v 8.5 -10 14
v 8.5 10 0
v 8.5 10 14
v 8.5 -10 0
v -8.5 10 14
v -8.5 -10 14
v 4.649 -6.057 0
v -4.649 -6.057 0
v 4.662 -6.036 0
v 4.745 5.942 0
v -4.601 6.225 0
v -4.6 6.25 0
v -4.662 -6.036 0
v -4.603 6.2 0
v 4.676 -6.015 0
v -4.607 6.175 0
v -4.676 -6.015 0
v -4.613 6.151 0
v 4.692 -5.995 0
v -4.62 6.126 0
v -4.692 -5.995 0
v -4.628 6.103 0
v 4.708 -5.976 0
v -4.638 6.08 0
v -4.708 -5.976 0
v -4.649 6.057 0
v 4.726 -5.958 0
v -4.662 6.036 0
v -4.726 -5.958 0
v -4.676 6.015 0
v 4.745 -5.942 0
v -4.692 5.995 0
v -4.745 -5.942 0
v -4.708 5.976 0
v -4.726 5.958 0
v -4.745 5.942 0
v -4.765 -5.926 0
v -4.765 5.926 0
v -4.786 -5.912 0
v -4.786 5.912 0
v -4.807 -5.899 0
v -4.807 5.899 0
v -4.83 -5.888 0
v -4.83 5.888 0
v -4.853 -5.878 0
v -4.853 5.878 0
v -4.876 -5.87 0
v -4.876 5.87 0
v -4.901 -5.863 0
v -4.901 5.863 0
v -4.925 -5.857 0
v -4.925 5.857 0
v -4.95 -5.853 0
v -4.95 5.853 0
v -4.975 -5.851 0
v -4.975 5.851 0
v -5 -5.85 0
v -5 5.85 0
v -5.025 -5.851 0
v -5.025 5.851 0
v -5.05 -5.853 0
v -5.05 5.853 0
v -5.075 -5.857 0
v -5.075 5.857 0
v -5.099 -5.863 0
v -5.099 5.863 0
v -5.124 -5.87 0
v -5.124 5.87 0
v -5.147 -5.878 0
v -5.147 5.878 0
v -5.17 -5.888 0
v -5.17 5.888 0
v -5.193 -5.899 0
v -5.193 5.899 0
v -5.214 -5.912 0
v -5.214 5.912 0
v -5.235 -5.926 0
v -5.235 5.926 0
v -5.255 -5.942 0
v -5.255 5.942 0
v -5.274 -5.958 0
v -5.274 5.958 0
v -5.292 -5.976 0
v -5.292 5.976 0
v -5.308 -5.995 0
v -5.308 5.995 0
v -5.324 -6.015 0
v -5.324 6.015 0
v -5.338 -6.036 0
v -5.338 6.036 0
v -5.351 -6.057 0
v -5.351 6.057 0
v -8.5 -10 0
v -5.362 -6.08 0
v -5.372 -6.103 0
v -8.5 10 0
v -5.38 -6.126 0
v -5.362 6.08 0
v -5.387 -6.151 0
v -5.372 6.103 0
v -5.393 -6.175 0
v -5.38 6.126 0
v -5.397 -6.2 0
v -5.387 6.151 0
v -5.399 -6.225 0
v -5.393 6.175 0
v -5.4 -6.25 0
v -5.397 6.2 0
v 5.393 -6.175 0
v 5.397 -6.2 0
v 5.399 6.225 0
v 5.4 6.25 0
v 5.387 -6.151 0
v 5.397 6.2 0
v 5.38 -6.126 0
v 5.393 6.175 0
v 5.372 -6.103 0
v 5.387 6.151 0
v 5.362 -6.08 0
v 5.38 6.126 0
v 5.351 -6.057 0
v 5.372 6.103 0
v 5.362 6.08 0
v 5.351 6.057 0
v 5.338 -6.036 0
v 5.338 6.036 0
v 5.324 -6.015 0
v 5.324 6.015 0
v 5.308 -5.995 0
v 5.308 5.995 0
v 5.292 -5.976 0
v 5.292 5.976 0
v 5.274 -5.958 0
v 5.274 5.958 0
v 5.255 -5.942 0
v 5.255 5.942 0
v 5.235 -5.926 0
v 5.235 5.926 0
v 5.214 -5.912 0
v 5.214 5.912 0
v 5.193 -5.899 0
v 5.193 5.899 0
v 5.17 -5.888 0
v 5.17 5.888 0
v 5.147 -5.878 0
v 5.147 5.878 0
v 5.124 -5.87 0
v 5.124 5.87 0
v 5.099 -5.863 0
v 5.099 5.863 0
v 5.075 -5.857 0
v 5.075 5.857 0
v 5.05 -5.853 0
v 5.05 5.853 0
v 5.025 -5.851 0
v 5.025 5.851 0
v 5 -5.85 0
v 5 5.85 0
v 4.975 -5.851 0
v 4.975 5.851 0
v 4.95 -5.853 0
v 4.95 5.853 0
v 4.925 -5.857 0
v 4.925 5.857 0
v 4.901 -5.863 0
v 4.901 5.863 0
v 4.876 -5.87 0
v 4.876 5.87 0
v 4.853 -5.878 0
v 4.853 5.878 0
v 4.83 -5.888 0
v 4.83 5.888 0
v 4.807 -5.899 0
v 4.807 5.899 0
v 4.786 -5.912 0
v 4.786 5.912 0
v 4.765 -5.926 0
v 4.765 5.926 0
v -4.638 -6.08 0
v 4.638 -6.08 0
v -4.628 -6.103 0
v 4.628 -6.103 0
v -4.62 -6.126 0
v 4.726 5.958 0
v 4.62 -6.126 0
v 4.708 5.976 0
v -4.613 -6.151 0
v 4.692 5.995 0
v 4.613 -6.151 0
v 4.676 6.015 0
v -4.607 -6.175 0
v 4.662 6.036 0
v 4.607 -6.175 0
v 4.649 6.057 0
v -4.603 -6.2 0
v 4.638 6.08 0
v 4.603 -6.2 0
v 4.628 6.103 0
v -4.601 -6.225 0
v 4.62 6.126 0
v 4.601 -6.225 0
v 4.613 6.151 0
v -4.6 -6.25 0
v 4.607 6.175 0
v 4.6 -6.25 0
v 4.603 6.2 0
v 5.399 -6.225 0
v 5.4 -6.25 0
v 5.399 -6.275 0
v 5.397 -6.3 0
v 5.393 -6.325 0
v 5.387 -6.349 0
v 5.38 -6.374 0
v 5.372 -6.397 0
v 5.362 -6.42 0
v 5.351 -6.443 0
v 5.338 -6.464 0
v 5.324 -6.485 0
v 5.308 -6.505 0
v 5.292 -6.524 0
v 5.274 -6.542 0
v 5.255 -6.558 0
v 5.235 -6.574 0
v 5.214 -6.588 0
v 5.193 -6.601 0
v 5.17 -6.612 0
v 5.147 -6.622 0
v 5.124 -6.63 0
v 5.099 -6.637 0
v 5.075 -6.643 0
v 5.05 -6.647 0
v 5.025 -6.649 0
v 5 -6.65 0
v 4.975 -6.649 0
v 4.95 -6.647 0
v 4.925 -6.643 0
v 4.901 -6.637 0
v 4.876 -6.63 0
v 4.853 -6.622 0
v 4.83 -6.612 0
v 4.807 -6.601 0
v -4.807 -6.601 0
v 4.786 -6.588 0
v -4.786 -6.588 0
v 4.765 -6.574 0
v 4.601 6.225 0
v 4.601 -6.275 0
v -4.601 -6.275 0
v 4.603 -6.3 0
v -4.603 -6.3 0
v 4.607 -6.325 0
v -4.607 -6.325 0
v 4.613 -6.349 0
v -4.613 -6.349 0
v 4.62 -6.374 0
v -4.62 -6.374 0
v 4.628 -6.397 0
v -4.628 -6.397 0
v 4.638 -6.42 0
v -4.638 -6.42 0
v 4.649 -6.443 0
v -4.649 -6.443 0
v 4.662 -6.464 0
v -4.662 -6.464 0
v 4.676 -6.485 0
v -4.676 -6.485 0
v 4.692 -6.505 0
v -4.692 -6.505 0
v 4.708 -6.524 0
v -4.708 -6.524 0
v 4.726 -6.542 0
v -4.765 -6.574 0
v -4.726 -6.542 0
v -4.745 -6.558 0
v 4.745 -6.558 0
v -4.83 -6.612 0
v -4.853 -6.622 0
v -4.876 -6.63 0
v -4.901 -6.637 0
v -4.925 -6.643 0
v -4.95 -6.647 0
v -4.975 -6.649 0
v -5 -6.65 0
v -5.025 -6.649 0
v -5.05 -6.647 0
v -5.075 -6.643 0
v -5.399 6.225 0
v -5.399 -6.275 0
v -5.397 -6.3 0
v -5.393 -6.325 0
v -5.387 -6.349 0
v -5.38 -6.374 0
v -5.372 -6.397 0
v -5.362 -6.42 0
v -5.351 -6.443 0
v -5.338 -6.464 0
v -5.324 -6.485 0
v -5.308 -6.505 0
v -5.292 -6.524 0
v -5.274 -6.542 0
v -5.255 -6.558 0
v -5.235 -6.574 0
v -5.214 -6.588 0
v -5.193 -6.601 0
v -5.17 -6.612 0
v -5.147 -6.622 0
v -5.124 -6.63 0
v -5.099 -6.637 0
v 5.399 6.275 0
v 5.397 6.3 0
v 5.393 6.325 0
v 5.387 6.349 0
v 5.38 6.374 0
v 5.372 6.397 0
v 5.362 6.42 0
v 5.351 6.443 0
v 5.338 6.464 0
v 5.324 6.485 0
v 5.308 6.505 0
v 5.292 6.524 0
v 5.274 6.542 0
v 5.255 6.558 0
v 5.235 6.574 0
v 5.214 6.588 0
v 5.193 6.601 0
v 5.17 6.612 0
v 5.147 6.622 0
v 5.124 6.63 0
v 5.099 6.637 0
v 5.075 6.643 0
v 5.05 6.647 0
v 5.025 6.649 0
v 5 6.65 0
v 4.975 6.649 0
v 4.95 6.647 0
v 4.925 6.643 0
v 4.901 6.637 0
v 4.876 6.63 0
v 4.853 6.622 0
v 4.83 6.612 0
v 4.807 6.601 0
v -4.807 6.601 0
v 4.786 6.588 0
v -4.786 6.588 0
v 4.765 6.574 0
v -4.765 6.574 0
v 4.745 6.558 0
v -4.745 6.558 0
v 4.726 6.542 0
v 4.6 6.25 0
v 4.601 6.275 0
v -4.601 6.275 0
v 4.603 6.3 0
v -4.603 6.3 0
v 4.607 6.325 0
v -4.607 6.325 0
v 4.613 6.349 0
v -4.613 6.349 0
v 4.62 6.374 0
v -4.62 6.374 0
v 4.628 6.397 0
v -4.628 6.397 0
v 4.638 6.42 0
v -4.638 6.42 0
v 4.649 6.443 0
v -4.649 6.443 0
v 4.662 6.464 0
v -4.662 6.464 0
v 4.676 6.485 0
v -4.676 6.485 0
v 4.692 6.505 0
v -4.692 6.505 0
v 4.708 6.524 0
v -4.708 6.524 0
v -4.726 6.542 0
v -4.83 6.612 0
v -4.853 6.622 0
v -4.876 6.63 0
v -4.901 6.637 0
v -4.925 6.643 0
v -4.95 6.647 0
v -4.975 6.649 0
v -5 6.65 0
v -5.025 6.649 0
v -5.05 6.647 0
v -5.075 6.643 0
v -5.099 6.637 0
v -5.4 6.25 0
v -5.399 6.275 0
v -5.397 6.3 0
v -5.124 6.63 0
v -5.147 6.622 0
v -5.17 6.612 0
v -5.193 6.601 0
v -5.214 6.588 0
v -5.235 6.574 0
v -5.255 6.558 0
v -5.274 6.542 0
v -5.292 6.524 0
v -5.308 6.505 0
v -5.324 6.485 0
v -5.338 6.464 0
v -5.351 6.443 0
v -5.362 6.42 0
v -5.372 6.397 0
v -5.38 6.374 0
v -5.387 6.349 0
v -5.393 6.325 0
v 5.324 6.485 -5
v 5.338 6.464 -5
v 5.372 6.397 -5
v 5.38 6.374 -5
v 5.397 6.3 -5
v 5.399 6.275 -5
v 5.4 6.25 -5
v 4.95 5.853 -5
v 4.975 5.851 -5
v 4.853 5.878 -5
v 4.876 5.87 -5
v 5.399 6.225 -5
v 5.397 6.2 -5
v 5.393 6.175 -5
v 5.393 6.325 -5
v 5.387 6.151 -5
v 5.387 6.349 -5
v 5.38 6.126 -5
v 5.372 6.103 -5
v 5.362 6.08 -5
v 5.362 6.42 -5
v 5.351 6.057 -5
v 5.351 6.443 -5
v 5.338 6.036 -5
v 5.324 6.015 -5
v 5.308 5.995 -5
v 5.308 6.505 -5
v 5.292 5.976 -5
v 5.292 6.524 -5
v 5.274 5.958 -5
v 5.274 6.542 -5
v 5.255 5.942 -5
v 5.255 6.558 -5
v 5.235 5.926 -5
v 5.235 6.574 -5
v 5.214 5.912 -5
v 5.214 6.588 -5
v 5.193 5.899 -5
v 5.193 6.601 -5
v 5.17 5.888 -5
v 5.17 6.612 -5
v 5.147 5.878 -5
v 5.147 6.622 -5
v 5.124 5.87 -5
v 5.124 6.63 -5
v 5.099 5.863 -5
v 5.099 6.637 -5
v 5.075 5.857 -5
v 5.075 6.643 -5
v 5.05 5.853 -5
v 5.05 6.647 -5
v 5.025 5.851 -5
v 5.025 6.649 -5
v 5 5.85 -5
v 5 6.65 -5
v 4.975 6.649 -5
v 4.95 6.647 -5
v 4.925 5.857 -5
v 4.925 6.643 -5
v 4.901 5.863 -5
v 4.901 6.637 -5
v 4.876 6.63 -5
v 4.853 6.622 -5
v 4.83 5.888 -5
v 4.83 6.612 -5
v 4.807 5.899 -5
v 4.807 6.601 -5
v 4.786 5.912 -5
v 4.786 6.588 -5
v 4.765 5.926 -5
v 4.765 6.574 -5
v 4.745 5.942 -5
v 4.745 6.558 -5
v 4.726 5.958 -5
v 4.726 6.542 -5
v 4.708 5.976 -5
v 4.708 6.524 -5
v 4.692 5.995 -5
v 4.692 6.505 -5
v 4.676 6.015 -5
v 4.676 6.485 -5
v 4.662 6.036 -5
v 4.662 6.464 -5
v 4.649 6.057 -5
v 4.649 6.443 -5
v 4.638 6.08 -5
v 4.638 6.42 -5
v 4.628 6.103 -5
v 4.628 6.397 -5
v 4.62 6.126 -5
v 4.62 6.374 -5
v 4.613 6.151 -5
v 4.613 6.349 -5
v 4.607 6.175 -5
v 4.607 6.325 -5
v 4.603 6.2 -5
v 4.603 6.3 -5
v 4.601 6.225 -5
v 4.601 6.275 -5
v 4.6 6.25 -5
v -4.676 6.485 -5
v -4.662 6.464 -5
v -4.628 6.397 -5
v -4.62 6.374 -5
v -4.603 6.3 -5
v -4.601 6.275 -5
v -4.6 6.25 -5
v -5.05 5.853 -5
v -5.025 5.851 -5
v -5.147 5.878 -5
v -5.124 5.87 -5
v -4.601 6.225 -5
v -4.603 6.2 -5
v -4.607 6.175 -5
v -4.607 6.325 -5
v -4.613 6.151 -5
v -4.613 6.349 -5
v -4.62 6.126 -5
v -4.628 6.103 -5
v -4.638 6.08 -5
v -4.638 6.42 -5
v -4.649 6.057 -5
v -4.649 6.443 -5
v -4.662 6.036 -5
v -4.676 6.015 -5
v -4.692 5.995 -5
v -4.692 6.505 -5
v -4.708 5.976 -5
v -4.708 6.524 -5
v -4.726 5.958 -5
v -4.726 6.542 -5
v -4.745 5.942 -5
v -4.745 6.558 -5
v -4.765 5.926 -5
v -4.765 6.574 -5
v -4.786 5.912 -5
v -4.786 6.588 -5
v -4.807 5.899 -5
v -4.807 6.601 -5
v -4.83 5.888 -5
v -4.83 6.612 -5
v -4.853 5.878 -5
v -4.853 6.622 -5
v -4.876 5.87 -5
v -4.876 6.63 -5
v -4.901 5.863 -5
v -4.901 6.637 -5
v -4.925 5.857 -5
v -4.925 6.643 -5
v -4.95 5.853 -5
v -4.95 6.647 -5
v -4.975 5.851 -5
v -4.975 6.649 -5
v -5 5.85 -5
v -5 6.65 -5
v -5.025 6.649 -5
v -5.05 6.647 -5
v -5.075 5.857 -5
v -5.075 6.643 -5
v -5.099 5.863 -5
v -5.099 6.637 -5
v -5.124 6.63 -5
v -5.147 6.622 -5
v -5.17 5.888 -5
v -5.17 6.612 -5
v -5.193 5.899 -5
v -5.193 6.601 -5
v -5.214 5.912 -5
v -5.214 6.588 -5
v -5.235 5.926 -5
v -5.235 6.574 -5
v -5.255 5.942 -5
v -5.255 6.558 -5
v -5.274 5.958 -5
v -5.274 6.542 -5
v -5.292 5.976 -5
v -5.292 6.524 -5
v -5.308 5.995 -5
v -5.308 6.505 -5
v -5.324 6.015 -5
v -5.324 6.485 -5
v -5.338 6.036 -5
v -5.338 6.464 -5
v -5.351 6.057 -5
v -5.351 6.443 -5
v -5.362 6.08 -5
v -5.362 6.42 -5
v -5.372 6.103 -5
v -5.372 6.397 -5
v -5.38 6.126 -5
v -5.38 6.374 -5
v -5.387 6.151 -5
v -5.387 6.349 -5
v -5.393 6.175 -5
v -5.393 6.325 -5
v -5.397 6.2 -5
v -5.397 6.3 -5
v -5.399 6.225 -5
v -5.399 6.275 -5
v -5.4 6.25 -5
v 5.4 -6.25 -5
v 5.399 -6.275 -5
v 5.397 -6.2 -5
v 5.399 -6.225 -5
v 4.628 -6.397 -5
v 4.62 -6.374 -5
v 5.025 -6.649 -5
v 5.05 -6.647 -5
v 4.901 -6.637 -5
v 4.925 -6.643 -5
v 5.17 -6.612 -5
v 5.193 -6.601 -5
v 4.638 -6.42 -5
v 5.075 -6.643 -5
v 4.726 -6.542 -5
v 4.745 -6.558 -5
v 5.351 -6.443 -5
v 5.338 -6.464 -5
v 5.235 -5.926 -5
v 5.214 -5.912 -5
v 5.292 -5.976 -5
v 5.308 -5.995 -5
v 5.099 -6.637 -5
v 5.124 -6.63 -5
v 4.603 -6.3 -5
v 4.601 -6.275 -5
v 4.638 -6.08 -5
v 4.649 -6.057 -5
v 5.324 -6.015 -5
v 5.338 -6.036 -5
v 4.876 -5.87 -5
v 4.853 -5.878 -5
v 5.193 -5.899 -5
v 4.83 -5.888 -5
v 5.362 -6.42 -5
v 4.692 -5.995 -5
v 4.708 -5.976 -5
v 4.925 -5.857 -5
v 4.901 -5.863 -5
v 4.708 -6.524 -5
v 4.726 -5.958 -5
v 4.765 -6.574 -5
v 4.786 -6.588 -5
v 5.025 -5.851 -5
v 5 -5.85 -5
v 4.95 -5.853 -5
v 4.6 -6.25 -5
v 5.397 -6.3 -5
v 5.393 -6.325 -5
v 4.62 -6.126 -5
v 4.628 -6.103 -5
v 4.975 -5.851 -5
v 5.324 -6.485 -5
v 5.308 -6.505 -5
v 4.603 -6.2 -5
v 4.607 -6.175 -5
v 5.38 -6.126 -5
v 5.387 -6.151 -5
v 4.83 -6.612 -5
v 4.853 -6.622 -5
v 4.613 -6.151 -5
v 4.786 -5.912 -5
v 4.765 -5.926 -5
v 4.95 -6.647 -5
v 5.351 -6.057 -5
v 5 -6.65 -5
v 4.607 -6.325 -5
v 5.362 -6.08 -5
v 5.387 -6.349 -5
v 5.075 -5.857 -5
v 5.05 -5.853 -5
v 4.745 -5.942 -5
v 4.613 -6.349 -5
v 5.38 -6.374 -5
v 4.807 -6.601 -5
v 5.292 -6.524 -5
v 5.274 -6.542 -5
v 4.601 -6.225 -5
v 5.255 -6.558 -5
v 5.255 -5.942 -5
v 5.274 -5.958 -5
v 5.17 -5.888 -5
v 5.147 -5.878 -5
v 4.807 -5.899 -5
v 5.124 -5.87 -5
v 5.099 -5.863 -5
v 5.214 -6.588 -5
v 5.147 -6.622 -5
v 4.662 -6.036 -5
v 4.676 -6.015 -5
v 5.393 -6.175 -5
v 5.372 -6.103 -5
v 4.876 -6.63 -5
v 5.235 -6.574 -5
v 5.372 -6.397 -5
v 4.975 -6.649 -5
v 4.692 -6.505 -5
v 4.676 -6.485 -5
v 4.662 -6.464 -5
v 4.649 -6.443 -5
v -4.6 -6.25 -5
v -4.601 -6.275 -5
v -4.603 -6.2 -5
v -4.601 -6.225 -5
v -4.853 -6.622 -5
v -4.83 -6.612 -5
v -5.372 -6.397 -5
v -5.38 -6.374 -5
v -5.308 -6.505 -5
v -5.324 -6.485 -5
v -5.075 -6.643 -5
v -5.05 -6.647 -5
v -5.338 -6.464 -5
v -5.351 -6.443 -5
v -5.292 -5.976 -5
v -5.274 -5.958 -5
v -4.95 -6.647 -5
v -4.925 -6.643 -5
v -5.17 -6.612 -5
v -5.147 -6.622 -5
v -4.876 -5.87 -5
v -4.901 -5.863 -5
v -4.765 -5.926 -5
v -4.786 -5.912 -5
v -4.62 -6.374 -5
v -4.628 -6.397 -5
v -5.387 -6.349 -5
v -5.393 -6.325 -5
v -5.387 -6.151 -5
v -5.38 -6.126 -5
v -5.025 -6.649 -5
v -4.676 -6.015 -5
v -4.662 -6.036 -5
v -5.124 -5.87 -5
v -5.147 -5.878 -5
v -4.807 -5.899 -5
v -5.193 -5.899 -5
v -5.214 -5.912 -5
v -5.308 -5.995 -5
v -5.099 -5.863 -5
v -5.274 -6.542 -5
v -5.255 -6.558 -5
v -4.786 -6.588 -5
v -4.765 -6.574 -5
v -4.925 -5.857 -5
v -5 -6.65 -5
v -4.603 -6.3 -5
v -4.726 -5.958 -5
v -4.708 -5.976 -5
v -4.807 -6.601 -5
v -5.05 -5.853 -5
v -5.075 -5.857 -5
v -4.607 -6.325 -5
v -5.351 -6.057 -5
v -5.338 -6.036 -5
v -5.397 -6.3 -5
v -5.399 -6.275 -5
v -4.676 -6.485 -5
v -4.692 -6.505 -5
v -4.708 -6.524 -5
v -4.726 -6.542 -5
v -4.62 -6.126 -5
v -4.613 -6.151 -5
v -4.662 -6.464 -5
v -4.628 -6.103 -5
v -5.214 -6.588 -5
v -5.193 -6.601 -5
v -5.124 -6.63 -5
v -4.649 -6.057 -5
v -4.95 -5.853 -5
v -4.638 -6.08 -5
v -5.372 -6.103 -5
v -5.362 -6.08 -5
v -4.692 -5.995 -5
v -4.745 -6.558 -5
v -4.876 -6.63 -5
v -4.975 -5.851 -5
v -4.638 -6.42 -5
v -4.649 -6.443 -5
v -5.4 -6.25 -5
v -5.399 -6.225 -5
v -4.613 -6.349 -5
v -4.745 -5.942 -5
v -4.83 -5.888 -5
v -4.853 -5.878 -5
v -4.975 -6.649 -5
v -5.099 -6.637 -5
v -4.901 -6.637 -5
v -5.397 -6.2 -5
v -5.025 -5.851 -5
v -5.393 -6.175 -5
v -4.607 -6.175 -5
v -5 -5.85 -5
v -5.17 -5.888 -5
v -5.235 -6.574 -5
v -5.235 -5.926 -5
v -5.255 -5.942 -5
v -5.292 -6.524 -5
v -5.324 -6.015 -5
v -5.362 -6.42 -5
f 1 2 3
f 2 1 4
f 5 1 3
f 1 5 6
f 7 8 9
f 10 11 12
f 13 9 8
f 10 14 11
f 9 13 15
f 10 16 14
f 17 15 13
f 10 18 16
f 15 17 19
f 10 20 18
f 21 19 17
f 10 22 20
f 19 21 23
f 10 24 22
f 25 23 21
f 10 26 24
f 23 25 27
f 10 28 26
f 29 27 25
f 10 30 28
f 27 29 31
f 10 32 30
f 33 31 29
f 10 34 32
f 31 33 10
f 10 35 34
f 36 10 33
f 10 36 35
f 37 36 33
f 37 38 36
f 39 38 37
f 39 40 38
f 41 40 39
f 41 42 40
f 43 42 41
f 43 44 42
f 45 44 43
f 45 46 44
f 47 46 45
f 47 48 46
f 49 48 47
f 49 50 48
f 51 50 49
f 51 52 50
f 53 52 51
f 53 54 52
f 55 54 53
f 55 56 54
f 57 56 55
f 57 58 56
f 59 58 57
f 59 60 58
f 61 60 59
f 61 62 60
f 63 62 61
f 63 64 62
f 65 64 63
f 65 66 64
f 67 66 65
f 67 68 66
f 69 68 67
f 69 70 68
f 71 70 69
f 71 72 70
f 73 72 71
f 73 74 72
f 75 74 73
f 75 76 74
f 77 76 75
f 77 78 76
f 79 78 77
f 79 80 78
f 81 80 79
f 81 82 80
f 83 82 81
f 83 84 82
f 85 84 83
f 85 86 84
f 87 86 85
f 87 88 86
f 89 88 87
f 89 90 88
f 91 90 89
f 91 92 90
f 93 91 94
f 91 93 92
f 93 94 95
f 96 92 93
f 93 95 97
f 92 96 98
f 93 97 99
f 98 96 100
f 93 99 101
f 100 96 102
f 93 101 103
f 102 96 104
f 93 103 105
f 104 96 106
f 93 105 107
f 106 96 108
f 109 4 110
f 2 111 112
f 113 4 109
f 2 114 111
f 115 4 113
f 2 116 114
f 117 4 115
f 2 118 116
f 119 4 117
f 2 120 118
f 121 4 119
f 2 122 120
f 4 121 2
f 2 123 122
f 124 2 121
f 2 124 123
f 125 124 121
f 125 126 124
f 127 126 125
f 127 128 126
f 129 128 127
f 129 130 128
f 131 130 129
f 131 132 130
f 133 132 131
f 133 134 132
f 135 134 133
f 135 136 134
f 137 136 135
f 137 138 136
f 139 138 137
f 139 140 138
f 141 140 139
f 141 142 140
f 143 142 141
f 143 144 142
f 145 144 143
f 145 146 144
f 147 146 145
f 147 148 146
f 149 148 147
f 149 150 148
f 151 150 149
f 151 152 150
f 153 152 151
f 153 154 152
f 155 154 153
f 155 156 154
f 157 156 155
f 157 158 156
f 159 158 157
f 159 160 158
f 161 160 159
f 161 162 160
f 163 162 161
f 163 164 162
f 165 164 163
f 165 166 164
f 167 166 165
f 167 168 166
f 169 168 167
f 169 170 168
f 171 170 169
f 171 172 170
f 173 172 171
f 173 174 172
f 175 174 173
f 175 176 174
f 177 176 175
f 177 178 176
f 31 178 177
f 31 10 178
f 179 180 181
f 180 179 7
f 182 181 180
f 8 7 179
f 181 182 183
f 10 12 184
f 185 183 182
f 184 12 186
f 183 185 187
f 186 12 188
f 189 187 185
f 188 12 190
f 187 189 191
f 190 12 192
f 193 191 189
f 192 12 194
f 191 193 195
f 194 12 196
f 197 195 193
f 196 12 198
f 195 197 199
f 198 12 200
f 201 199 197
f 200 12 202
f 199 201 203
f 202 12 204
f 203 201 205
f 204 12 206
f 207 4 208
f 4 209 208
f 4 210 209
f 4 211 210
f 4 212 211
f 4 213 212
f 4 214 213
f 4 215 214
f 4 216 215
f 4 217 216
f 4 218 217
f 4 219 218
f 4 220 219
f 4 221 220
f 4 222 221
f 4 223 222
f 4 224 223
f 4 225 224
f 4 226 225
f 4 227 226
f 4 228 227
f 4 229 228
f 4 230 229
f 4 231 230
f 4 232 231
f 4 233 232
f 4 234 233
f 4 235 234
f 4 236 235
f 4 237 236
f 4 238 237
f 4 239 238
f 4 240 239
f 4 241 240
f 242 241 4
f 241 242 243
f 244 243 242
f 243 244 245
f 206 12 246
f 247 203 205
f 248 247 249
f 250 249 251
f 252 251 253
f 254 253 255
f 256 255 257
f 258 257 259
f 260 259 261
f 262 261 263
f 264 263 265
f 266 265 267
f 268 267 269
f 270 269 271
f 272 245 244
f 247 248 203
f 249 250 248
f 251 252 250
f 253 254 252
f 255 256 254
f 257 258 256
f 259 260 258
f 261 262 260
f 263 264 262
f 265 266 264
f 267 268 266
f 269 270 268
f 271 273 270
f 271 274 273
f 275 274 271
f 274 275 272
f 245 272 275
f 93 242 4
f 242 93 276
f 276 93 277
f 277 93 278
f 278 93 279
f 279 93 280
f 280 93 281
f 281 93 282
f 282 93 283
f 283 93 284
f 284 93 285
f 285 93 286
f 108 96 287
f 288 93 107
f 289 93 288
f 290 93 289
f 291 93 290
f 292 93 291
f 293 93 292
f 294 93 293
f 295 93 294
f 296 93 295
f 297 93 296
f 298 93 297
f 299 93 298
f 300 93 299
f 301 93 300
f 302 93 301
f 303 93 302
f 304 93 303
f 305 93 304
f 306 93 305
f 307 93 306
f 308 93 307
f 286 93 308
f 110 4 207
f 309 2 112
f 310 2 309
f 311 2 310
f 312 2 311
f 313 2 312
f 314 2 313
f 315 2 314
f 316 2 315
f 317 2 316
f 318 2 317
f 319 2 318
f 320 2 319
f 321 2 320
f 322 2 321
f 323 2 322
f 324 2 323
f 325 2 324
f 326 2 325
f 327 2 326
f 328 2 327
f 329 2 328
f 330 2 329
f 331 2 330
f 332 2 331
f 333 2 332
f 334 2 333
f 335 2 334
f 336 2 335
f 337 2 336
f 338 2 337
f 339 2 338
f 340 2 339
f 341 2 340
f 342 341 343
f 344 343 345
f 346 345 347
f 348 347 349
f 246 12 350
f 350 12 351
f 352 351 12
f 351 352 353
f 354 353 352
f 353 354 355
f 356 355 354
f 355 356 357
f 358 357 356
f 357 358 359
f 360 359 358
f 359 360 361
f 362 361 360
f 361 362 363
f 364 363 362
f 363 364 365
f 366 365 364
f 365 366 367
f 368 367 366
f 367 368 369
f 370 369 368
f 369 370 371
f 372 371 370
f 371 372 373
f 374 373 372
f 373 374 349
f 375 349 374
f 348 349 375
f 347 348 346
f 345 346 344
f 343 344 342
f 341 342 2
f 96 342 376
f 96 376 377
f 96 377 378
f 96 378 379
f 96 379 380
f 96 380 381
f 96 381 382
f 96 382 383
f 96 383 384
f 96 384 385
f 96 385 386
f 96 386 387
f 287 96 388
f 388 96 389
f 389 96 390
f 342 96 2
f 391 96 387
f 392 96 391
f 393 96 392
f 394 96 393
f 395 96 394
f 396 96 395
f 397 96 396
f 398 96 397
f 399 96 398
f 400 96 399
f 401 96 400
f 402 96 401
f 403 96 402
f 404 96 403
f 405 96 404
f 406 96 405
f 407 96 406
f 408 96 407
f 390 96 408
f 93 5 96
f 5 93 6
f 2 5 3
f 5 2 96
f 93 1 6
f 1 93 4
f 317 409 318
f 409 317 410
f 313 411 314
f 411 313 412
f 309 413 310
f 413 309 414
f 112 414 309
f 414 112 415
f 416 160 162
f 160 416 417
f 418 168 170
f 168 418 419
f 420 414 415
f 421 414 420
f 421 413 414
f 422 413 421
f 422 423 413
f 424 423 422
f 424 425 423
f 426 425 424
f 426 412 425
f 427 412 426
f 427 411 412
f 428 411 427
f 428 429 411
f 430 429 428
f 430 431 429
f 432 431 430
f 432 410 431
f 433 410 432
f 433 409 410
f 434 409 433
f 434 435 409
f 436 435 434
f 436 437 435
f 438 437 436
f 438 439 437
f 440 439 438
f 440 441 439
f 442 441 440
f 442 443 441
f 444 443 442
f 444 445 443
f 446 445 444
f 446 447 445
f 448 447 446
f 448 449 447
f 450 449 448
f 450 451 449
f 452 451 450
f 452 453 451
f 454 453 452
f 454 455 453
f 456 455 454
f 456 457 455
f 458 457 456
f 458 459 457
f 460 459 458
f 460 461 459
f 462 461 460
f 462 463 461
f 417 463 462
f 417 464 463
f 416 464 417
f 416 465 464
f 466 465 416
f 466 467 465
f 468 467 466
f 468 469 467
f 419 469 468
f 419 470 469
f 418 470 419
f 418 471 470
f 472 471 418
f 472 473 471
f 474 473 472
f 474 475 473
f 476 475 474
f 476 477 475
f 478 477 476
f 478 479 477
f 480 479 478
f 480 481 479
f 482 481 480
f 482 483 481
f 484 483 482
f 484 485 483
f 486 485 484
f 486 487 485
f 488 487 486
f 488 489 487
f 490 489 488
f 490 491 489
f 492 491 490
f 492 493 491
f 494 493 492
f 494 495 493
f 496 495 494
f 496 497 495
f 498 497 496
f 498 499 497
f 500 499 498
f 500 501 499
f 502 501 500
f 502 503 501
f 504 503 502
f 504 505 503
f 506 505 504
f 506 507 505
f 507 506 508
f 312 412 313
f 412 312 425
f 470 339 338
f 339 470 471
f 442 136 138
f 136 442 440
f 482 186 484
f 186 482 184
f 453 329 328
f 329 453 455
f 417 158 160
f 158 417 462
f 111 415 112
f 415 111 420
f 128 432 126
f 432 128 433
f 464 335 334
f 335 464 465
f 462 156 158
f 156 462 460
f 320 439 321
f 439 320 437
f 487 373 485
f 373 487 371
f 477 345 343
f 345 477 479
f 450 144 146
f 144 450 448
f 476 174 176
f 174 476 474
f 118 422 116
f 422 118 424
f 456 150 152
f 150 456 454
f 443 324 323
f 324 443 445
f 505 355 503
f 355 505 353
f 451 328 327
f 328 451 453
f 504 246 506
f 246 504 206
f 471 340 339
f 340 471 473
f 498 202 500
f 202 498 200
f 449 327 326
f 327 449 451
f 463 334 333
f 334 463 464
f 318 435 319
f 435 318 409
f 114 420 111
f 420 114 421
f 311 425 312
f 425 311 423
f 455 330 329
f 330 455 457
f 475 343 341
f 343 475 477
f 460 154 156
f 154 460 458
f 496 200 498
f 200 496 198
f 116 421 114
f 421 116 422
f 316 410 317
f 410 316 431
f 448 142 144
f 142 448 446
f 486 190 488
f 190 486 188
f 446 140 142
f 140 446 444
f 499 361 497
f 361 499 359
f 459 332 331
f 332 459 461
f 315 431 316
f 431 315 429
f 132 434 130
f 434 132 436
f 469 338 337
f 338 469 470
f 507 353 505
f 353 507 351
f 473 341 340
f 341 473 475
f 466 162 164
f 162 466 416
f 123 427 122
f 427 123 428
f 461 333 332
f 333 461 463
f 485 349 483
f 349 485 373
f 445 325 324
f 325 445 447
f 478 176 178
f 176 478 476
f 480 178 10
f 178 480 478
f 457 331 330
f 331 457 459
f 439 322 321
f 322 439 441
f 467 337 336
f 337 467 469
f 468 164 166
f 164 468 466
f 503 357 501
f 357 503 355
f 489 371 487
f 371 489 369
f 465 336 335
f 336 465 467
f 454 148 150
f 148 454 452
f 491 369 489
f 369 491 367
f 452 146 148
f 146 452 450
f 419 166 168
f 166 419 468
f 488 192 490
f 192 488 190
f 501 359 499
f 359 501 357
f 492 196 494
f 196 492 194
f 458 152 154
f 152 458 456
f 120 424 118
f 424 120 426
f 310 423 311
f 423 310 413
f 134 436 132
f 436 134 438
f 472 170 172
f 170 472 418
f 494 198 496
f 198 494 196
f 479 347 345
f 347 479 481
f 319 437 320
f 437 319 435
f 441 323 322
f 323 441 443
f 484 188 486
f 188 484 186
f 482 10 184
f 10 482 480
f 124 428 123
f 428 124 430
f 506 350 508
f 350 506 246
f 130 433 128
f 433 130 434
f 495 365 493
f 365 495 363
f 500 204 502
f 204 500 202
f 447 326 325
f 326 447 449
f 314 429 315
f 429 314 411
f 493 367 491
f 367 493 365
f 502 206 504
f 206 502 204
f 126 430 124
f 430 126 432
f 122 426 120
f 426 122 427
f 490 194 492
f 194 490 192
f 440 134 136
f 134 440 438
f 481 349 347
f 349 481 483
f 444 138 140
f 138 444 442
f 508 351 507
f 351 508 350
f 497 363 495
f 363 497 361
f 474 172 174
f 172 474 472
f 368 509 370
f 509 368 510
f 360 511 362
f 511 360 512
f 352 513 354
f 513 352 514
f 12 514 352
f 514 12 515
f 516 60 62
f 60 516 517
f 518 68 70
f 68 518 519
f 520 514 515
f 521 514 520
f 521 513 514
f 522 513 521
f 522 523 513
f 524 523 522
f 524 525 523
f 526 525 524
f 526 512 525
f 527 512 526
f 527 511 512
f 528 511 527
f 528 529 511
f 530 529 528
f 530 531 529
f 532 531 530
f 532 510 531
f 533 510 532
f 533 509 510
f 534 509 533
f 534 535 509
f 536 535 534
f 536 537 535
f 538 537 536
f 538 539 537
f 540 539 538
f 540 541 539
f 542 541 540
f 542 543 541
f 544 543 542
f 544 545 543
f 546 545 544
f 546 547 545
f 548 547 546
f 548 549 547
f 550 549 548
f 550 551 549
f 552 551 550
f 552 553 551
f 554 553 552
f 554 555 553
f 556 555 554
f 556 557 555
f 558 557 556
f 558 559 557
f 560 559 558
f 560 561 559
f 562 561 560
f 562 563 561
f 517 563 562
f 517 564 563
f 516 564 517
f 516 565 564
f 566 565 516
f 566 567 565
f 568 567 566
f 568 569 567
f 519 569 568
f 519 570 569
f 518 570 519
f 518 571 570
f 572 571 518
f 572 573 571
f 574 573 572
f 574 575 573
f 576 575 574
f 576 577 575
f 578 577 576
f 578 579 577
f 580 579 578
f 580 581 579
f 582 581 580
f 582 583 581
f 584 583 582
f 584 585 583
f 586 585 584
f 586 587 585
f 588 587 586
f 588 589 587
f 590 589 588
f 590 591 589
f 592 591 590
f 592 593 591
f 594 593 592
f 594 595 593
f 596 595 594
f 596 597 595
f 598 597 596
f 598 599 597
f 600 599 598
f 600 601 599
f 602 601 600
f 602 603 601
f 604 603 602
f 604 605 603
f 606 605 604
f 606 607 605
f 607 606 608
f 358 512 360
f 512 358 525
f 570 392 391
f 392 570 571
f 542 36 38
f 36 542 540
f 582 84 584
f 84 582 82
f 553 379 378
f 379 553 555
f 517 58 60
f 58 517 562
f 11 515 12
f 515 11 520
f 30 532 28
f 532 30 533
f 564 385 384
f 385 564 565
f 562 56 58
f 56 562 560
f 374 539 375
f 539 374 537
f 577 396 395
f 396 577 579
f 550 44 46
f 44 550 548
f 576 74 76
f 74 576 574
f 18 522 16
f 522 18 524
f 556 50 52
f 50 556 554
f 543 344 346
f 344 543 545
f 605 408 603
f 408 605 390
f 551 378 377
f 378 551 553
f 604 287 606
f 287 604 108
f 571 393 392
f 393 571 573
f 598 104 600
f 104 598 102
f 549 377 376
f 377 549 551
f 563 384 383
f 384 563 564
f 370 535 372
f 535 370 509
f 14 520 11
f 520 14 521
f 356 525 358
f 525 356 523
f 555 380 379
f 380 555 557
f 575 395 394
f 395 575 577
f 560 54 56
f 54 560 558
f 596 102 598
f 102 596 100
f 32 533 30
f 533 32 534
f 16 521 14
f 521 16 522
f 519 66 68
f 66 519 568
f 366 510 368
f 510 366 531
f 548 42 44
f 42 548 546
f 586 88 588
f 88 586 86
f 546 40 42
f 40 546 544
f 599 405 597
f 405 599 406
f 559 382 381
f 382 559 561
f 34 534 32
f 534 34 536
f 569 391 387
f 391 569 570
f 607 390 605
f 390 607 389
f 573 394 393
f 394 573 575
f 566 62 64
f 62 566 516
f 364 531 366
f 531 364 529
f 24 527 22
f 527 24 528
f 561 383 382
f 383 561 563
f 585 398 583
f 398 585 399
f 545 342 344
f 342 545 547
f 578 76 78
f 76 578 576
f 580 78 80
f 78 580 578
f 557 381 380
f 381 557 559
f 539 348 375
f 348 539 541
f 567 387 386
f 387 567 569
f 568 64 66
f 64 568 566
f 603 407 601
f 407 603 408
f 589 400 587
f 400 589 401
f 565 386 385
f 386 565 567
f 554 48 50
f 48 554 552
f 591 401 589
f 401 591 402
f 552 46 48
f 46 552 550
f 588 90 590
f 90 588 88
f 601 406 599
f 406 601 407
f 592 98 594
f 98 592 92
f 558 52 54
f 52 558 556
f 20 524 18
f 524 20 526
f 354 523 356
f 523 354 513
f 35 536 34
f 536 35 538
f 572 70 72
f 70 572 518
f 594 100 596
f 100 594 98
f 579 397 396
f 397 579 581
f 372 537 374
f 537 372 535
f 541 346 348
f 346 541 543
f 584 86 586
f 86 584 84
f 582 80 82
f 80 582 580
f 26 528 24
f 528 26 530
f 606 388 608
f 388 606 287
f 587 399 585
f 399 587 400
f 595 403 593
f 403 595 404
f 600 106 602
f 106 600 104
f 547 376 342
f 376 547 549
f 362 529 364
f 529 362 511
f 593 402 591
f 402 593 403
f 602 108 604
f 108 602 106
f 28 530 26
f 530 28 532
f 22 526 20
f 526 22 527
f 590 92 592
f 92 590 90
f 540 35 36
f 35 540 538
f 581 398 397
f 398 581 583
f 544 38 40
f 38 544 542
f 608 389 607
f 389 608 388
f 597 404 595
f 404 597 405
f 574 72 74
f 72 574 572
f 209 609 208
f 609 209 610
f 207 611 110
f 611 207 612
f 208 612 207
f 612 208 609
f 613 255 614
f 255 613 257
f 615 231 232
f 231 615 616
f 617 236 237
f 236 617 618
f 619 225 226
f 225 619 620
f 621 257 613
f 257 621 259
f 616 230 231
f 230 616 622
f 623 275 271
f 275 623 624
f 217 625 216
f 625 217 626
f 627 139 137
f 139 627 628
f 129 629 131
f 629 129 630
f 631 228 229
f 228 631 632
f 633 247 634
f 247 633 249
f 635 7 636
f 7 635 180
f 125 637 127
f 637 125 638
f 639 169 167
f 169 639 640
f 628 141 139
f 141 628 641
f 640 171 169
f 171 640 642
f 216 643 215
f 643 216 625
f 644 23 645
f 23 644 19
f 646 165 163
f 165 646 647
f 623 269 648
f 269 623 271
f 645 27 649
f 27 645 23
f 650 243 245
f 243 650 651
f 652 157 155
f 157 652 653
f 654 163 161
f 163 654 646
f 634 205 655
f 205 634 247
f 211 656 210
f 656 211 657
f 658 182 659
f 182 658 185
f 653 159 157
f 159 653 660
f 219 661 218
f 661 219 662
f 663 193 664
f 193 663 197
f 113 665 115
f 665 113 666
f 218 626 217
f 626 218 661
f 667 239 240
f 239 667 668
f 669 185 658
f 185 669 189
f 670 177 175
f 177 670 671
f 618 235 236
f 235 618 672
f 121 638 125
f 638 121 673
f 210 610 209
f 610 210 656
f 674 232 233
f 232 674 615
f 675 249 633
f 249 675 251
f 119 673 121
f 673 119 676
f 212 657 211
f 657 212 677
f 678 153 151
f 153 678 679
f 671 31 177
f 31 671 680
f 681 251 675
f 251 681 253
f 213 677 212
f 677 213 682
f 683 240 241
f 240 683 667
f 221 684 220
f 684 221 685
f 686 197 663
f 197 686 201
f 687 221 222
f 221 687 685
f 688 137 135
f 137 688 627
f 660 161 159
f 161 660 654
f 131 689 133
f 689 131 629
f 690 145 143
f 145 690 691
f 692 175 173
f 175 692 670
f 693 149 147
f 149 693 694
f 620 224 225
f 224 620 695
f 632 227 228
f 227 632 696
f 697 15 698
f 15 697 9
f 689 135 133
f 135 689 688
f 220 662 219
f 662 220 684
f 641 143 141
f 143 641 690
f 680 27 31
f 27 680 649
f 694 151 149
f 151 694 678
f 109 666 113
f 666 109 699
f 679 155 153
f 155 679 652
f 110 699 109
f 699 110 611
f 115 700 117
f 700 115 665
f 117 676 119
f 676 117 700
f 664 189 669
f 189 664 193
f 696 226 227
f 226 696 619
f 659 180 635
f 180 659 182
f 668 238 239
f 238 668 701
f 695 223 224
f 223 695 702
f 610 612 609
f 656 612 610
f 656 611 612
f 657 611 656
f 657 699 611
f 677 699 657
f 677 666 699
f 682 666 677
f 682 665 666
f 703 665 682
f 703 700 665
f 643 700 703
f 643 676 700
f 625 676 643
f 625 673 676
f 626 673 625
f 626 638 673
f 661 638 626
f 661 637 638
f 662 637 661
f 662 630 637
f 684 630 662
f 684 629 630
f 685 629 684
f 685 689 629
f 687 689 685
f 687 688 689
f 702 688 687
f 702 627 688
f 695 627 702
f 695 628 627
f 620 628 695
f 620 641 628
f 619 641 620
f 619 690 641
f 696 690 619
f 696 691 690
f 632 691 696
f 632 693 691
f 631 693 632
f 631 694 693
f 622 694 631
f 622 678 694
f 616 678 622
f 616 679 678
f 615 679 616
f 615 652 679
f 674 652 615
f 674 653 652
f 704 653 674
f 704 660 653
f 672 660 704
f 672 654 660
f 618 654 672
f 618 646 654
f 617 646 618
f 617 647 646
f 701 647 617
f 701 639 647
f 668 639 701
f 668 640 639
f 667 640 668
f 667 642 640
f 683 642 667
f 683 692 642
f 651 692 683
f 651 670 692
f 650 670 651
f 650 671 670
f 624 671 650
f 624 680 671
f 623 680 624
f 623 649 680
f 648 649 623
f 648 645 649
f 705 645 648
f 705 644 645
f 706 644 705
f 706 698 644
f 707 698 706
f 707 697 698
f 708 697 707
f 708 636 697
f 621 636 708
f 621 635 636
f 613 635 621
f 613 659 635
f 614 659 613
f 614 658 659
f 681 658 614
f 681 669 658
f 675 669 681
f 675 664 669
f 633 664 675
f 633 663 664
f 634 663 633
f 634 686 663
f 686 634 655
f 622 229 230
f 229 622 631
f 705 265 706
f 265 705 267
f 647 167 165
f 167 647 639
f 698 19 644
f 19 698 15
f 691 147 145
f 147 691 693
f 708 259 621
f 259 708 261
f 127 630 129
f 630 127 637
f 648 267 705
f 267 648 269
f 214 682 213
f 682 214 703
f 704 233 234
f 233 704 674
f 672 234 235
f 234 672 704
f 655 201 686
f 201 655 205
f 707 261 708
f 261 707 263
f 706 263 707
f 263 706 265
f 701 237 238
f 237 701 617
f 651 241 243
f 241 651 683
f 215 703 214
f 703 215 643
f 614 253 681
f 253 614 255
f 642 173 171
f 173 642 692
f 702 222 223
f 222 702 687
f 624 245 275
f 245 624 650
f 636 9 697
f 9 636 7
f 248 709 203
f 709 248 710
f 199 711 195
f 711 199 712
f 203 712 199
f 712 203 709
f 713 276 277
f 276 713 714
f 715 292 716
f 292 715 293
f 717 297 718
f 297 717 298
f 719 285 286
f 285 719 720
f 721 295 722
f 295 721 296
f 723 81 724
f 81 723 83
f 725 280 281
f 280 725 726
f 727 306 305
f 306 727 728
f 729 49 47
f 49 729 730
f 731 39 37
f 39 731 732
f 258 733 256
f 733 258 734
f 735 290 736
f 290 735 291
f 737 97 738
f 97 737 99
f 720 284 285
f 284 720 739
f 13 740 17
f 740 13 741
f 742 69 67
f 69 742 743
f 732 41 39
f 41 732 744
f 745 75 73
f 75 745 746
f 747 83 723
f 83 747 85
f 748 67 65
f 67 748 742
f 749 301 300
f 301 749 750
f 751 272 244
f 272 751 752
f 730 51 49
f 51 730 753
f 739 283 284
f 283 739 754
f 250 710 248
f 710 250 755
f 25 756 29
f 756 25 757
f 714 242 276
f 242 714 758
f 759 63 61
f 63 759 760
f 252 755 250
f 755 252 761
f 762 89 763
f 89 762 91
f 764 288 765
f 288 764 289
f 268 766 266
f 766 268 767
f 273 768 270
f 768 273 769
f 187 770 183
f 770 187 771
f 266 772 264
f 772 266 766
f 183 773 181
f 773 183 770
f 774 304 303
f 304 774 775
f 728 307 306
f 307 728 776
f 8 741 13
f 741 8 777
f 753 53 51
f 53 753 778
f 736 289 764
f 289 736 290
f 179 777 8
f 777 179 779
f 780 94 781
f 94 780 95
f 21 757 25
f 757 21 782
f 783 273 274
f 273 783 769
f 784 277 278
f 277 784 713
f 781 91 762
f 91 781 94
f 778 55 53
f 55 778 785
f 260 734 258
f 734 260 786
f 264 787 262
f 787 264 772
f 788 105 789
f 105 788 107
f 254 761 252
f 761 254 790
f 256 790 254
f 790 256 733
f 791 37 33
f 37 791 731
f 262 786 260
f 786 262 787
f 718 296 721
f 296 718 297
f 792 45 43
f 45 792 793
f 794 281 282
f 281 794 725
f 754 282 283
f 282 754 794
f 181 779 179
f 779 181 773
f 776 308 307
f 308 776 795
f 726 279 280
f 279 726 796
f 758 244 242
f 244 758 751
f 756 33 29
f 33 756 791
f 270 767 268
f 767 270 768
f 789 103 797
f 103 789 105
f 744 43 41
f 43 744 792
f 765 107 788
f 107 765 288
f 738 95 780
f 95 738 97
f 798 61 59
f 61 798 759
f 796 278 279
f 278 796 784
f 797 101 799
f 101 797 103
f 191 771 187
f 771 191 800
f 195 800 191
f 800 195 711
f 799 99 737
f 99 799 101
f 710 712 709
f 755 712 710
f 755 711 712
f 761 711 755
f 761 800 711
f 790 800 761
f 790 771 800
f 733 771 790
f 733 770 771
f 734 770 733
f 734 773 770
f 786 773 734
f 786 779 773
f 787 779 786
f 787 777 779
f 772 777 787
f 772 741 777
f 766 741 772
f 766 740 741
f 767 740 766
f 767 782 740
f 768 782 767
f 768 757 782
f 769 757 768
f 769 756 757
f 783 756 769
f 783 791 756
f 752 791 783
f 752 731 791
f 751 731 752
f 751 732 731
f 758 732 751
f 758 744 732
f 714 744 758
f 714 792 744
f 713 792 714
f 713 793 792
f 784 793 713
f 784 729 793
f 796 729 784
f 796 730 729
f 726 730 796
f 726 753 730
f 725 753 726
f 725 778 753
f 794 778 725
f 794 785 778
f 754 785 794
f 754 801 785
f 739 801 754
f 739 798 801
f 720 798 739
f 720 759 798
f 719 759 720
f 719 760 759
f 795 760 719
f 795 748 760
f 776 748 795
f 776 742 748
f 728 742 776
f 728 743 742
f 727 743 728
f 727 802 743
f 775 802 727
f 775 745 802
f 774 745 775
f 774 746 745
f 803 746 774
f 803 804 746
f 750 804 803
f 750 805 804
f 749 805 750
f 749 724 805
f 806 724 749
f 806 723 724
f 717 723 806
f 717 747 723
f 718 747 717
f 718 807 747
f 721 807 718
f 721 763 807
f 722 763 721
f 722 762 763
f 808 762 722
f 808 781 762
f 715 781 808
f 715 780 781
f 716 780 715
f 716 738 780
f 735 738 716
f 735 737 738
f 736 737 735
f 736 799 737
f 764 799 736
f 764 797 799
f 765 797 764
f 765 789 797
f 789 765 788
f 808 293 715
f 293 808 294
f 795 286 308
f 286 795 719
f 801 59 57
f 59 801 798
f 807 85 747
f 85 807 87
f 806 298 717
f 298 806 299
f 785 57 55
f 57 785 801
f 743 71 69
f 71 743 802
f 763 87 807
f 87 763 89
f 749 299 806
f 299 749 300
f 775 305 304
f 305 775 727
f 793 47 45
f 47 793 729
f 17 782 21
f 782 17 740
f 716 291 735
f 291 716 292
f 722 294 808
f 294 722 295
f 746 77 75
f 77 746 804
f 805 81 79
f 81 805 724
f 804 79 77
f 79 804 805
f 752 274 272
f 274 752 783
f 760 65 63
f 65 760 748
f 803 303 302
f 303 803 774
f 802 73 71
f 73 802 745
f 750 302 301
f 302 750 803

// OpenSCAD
PIN_X=5;
PIN_Y=6.25;
PIN_Z=-5;

color("gray")translate([-17/2,-10])cube([17,20,14]);
translate([PIN_X,PIN_Y,PIN_Z]) cylinder(r=0.4,h=6, $fn=100);
translate([-PIN_X,PIN_Y,PIN_Z]) cylinder(r=0.4,h=6, $fn=100);
translate([PIN_X,-PIN_Y,PIN_Z]) cylinder(r=0.4,h=6, $fn=100);
translate([-PIN_X,-PIN_Y,PIN_Z]) cylinder(r=0.4,h=6, $fn=100);
